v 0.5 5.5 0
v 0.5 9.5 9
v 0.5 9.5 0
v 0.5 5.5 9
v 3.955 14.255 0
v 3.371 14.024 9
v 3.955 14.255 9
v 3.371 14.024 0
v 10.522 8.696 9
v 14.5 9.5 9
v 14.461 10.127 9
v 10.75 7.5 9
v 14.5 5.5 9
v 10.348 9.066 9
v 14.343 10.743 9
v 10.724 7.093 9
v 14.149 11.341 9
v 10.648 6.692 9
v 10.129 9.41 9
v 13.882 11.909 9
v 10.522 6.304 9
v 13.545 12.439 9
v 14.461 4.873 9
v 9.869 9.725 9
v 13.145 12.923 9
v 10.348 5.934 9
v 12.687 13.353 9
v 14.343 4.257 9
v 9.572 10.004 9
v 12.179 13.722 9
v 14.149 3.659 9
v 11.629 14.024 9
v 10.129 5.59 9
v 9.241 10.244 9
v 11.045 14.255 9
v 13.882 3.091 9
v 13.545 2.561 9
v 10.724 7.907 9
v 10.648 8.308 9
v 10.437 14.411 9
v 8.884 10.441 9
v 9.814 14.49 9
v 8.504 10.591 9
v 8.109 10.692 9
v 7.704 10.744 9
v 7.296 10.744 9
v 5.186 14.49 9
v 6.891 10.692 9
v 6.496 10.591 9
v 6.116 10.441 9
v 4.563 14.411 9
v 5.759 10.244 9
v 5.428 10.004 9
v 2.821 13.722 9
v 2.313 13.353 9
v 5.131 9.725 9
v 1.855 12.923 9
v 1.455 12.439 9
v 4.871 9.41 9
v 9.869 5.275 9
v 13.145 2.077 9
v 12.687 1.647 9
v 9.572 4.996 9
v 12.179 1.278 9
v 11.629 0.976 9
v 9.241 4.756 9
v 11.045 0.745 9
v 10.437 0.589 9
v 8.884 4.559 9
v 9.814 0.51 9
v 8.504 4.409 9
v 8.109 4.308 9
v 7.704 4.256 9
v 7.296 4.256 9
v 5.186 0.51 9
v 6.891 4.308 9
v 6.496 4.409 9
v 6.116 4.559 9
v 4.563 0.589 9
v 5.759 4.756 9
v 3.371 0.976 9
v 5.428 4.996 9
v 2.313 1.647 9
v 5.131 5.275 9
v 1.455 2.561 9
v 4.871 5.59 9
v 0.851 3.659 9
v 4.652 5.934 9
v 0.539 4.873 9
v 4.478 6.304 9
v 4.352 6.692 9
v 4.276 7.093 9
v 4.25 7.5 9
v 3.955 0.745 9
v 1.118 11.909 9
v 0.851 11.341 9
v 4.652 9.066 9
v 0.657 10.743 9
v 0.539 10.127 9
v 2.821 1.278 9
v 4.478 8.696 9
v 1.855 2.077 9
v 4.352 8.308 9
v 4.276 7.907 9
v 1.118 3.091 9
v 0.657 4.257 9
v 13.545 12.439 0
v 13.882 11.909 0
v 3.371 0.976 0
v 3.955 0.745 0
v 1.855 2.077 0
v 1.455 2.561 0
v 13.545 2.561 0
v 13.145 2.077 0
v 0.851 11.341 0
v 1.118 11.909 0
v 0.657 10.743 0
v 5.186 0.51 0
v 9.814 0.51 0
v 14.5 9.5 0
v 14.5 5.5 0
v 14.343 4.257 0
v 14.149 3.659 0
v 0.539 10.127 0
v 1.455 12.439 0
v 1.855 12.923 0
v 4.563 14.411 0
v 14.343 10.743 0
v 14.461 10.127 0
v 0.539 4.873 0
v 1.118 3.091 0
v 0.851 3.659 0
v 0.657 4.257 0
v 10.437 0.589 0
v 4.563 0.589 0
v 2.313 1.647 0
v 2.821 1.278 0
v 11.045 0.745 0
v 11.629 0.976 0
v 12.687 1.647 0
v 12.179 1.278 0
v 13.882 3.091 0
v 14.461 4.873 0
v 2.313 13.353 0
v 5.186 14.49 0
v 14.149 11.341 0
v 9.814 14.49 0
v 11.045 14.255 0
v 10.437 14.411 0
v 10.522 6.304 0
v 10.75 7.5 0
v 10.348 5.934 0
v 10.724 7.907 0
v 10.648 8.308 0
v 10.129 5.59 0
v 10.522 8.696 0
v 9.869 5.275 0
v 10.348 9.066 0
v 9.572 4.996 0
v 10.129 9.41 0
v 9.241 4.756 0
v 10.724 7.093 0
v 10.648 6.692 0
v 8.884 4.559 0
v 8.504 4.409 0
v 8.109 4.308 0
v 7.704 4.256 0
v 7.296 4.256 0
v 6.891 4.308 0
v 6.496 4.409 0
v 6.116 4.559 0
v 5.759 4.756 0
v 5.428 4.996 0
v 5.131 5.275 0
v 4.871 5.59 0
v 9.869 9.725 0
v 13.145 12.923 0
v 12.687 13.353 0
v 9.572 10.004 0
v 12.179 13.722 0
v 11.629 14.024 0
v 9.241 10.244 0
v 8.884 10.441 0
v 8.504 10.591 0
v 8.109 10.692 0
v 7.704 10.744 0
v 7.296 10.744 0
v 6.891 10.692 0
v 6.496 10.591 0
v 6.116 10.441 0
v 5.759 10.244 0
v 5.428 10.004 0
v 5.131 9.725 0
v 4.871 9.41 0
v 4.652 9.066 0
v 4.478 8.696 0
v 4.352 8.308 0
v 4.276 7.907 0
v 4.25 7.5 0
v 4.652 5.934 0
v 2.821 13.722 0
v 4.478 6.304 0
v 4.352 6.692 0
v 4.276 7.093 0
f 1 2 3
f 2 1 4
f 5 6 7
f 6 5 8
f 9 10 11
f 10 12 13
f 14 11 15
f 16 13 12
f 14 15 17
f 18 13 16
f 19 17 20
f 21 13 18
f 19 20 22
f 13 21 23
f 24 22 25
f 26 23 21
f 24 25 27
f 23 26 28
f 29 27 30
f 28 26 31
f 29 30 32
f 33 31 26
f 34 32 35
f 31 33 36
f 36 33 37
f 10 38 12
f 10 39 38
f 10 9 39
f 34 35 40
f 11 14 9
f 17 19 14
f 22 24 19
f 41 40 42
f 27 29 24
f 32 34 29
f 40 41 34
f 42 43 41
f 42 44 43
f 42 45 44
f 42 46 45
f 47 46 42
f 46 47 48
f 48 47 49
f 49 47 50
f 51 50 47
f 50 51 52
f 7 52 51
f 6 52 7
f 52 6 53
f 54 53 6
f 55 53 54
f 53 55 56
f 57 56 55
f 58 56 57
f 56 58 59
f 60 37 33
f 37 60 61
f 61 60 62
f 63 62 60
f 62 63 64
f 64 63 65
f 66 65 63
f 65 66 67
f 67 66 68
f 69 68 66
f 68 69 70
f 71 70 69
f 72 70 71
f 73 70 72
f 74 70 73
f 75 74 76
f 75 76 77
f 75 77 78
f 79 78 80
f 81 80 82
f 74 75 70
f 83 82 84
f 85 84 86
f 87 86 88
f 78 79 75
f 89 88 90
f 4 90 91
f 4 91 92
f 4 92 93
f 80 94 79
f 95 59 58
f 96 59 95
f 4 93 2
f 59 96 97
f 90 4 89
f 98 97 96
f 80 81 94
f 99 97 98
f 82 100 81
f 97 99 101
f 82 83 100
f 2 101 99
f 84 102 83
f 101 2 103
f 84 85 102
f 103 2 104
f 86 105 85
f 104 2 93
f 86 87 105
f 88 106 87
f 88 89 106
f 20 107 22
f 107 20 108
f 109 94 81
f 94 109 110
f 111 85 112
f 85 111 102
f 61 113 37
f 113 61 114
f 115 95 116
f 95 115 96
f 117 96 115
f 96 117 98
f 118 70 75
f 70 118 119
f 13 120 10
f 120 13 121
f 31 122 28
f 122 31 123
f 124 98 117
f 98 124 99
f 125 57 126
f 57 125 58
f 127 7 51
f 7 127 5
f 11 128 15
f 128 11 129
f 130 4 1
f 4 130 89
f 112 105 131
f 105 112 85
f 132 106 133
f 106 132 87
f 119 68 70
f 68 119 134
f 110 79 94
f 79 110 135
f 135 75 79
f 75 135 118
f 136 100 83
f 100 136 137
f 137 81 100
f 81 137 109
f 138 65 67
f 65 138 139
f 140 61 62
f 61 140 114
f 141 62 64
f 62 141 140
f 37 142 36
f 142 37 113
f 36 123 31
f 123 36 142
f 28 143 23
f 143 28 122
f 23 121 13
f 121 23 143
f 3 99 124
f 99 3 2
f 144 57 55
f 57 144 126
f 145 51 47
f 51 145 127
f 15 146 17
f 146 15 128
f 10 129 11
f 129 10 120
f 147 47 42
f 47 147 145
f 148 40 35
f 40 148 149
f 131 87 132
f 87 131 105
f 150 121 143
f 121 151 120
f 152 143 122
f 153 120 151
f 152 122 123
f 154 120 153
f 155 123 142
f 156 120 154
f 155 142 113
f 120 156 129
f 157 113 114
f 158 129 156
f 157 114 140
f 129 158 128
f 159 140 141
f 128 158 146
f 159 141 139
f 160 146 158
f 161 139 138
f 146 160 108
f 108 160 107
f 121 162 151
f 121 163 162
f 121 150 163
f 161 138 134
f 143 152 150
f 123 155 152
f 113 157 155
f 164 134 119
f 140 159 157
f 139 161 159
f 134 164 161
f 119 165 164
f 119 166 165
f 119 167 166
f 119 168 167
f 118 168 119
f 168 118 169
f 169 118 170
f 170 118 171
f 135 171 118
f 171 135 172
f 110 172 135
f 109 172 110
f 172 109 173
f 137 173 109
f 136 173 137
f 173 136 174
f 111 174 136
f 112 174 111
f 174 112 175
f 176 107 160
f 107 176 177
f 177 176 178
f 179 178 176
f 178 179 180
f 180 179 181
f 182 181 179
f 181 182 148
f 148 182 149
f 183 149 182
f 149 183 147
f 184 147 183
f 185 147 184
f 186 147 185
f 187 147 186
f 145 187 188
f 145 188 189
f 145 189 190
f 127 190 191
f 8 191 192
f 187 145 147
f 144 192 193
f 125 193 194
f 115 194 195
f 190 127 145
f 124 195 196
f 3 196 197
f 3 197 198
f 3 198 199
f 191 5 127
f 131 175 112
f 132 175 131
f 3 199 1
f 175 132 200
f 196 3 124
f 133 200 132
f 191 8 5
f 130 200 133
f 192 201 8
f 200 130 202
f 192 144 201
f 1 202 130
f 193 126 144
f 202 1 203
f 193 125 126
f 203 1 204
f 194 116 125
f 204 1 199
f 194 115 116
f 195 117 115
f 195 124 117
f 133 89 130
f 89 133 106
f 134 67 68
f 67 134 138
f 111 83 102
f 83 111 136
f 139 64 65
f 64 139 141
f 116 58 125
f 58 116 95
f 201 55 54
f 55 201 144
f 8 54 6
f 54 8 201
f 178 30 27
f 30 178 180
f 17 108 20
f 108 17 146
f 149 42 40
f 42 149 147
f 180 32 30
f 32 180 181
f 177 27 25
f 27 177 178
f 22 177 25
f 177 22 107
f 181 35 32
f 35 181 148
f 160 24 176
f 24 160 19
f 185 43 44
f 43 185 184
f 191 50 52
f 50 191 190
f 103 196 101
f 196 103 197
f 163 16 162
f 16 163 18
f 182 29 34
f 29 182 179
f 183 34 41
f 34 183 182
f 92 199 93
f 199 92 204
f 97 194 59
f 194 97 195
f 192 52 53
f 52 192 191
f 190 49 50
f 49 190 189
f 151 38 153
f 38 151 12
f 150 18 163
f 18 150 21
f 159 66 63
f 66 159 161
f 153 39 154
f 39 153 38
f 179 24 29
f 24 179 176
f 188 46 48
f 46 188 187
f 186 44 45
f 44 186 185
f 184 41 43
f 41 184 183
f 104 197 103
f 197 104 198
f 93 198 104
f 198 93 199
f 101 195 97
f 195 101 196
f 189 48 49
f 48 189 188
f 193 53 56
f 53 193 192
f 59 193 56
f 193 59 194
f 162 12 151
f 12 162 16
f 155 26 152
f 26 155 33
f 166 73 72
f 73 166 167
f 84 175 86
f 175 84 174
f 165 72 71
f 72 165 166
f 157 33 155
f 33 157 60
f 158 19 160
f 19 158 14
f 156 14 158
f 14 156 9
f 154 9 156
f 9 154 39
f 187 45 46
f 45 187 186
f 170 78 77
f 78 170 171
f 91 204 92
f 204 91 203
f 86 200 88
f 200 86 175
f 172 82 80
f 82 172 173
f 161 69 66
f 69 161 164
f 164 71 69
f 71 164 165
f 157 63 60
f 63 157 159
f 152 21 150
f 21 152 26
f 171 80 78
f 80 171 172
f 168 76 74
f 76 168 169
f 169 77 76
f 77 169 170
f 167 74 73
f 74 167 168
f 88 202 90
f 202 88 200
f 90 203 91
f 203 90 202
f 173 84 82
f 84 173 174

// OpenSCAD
// Generated by SolidPython 1.1.3 on 2023-01-09 15:31:25
$fn = 50;


difference() {
	union() {
		translate(v = [7.5000000000, 7.5000000000, 0]) {
			rotate(a = [0, 0, 0]) {
				hull() {
					translate(v = [-2.0000000000, 2.0000000000, 0]) {
						rotate(a = [0, 0, 0]) {
							translate(v = [0, 0, 0]) {
								rotate(a = [0, 0, 0]) {
									cylinder(h = 9, r = 5);
								}
							}
						}
					}
					translate(v = [2.0000000000, 2.0000000000, 0]) {
						rotate(a = [0, 0, 0]) {
							translate(v = [0, 0, 0]) {
								rotate(a = [0, 0, 0]) {
									cylinder(h = 9, r = 5);
								}
							}
						}
					}
					translate(v = [-2.0000000000, -2.0000000000, 0]) {
						rotate(a = [0, 0, 0]) {
							translate(v = [0, 0, 0]) {
								rotate(a = [0, 0, 0]) {
									cylinder(h = 9, r = 5);
								}
							}
						}
					}
					translate(v = [2.0000000000, -2.0000000000, 0]) {
						rotate(a = [0, 0, 0]) {
							translate(v = [0, 0, 0]) {
								rotate(a = [0, 0, 0]) {
									cylinder(h = 9, r = 5);
								}
							}
						}
					}
				}
			}
		}
	}
	union() {
		translate(v = [7.5000000000, 7.5000000000, 0]) {
			rotate(a = [0, 0, 0]) {
				translate(v = [0, 0, -50]) {
					rotate(a = [0, 0, 0]) {
						cylinder(h = 100, r = 3.2500000000);
					}
				}
			}
		}
	}
}
/***********************************************
*********      SolidPython code:      **********
************************************************
 
from solid import *
import os
import subprocess

import oomB

import opsc_library_gen

mode = "laser"
#mode = "3d_print"

defined_objects = {}

radius_dict = {}
countersunk_dict = {}


def set_mode(m):
    global mode
    mode = m
    radius_dict['M6'] = 6.5/2
    radius_dict['M3'] = 3.3/2
    if mode == "laser":
        radius_dict['M6'] = 6/2
        radius_dict['M3'] = 3/2

    countersunk_dict['M3'] = {}
    countersunk_dict['M3']['little_rad'] = radius_dict['M3']
    countersunk_dict['M3']['big_rad'] = (5.5+0.6)/2
    if mode == "laser":
        countersunk_dict['M3']['big_rad'] = (4.75+0.6)/2
        countersunk_dict['M3']['little_rad'] = (4.75+0.6)/2

    countersunk_dict['M3']['height'] = 1.7


def opsc_make_object(filename, objects, save_type="none",resolution=50, layers = 1, tilediff = 200, mode="laser"):
    set_mode(mode)
    save_type = save_type.lower()
    os.makedirs(os.path.dirname(filename), exist_ok=True)
    final_object = opsc_get_object(objects)
    # Save the final object to the specified filename    
    scad_render_to_file(final_object, filename, file_header='$fn = %s;' % resolution, include_orig_code=True)
    if mode == "laser":
        filename_laser = filename.replace(".scad","-flat.scad")
        scad_render_to_file(getLaser(final_object, layers=layers, tilediff=tilediff), filename_laser, file_header='$fn = %s;' % resolution, include_orig_code=True)
        if save_type == "all":
            saveToAll(filename_laser)
        elif save_type == "dxf":
            saveToDxf(filename_laser)
    if save_type == "all":
        saveToAll(filename)
    elif save_type == "dxf":
        saveToDxf(filename)


def opsc_get_object(objects):
    # Create the solidpython objects
    positive_objects = [get_opsc_item(obj) for obj in objects if obj['type'] == 'positive']
    negative_objects = [get_opsc_item(obj) for obj in objects if obj['type'] == 'negative']
    # Union the positive objects
    positive_object = union()(*positive_objects)
    # Union the negative objects
    negative_object = union()(*negative_objects)
    # Create the final object by subtracting the negative objects from the positive objects
    return difference()(positive_object, negative_object)

def get_opsc_item(params):
    # A dictionary to map radius string values to numerical values
    #radius_dict = {'small': 5, 'medium': 10, 'large': 15}
    # An array of function names for basic shapes
    basic_shapes = ['cube', 'sphere', 'cylinder']
    
    # An array of function names for other shapes
    other_shapes = ['hole', 'slot', 'rounded_rectangle', 'countersunk']
    


    # Convert radius to r if present, and remove radius from the params dictionary
    if 'radius' in params:
        if isinstance(params['radius'], str):
            # Use the radius_dict to map the radius string value to a numerical value
            params['r'] = radius_dict[params['radius']]
        else:
            params['r'] = params['radius']
        del params['radius']
    

    # Check if the object type is a basic shape
    if params['shape'] in basic_shapes:
        # Remove shape and unexpected dictionary values
        allowed_keys = {'size', 'r', 'r1', 'r2', 'd', 'h', 'rw', 'rh', 'dw', 'dh'}
        shape_params = {k: v for k, v in params.items() if k in allowed_keys}

        # Call the corresponding function for the shape parameter, using ** notation to pass the shape_params dictionary as keyword arguments
        return get_opsc_transform(params,globals()[params['shape']](**shape_params))
    
    # If the object type is not a basic shape, check if it's a defined object or one of the other shapes
    elif params['shape'] in other_shapes:
        # Call the corresponding function for the shape parameter, passing the params dictionary as an argument
        p2 = copy.deepcopy(params)
        p2["pos"] = [0,0,0]
        return get_opsc_transform(params,globals()[params['shape']](p2))
    
    # If the object is not a basic shape or a defined object, try to import it from a .scad file
    else:
        obj = defined_objects[params['shape']]
        return get_opsc_transform(params,obj)

def get_opsc_transform(params, solid_obj):
    # Rotate the object based on the 'rot' field in the params dictionary, or the 'rotX', 'rotY', and 'rotZ' fields if 'rot' is not present
    rot = params.get('rot', [])
    if rot:
        rotX, rotY, rotZ = rot
    else:
        rotX = params.get('rotX', 0)
        rotY = params.get('rotY', 0)
        rotZ = params.get('rotZ', 0)
    solid_obj = rotate([rotX, rotY, rotZ])(solid_obj)

    # Translate the object based on the 'pos' field in the params dictionary, or the 'x', 'y', and 'z' fields if 'pos' is not present
    pos = params.get('pos', [])
    if pos:
        x, y, z = pos
    else:
        x = params.get('x', 0)
        y = params.get('y', 0)
        z = params.get('z', 0)
    solid_obj = translate([x, y, z])(solid_obj)
    return solid_obj


import random

def opsc_easy_array(type, shape, repeats, pos_start, shift_arr, **kwargs):
    for i in range(0,3):
        repeats.append(1)
        pos_start.append(0)
        shift_arr.append(0)
    return_objects = []

    for x in range(0,repeats[0]):
        for y in range(0,repeats[1]):
            for z in range(0,repeats[2]):
                return_objects.append(opsc_easy(type, shape, pos=[pos_start[0]+x*shift_arr[0],pos_start[1]+y*shift_arr[1],pos_start[2]+z*shift_arr[2]], **kwargs))
    return return_objects                



def opsc_easy(type, shape, **kwargs):
    obj = {
        'type': type,
        'shape': shape
    }
    for param in ['size', 'r', 'r1', 'r2', 'd', 'h', 'rw', 'rh', 'dw', 'dh', 'pos', 'x', 'y', 'z', 'rot', 'rotX', 'rotY', 'rotZ', "w"]:
        if param in kwargs:
            obj[param] = kwargs[param]
    return obj

def hole(params):
    p2 = copy.deepcopy(params)  
    # Check if the radius is a string and replace it with the corresponding value from the dictionary
    if isinstance(p2['r'], str):
        p2['r'] = radius_dict[p2['r']]
    
    # Set the height to 100 if not specified
    if 'h' not in p2:
        p2['h'] = 100
        p2["pos"] = [0,0,-50]
    p2["center"] = True
    # Create the cylinder object
    p2["shape"] = "cylinder"
    p2["type"] = "positive"

    return get_opsc_item(p2)

import copy

def countersunk(params):
    p2 = copy.deepcopy(params)
    counter_rad = p2['r']
    p2['r'] = radius_dict[p2['r']]
    hp = copy.deepcopy(p2)
    hp["type"] = "positive"
    hp["shape"] = "hole"
    del hp["rot"]
    hol = get_opsc_item(hp)
    
    cp = copy.deepcopy(p2)
    cp["h"] = countersunk_dict[counter_rad]["height"]
    cp["r2"] = countersunk_dict[counter_rad]["little_rad"]
    cp["r1"] = countersunk_dict[counter_rad]["big_rad"]
    del cp["r"]
    del cp["rot"]
    cp["type"] = "positive"
    cp["shape"] = "cylinder"
    cp["pos"] = [0,0,0]

    top = get_opsc_item(cp)
    return union()(hol,top)



def slot(params):  
    p2 = copy.deepcopy(params) 
    if isinstance(p2['r'], str):
        p2['r'] = radius_dict[p2['r']]
    p2["type"] = "positive"
    p2["shape"] = "hole"
    del p2["rot"]
    p2["pos"] = [0,0,0]
    left = copy.deepcopy(p2)
    right = copy.deepcopy(p2)
    left["pos"][0] = p2["w"] / 2 - p2["r"] 
    
    right["pos"][0] = -p2["w"] / 2 + p2["r"] 
    pass
    leftObj = get_opsc_item(left)
    rightObj = get_opsc_item(right)
    return hull()(leftObj, rightObj)

def rounded_rectangle(params):   
    p2 = copy.deepcopy(params) 
    p2["h"] = p2["size"][2]
    p2["pos"] = p2.get("pos", [0, 0, 0]) 
    p2["type"] = "positive"
    p2["shape"] = "hole"
    p2["pos"] = [0,0,0]
    
    if 'rot' in p2:
        del p2["rot"]   
    if 'r' not in p2:
        p2["r"] = 5 
    tl = copy.deepcopy(p2)
    tr = copy.deepcopy(p2)
    bl = copy.deepcopy(p2)
    br = copy.deepcopy(p2)
    tl["pos"][0] = -(p2["size"][0] - p2["r"]*2)/2
    tl["pos"][1] = (p2["size"][1] - p2["r"]*2)/2
    tr["pos"][0] = (p2["size"][0] - p2["r"]*2)/2
    tr["pos"][1] = (p2["size"][1] - p2["r"]*2)/2
    bl["pos"][0] = -(p2["size"][0] - p2["r"]*2)/2
    bl["pos"][1] = -(p2["size"][1] - p2["r"]*2)/2
    br["pos"][0] = (p2["size"][0] - p2["r"]*2)/2
    br["pos"][1] = -(p2["size"][1] - p2["r"]*2)/2
    del tl["size"]
    del tr["size"]
    del bl["size"]
    del br["size"]
    tlo = get_opsc_item(tl)
    tro = get_opsc_item(tr)
    blo = get_opsc_item(bl)
    bro = get_opsc_item(br)    
    return hull()(tlo, tro, blo, bro)



def import_scad_object(filename):
    # Import the .scad file and convert it to a solidpython object
    #filename = "parts"
    obj = import_scad(filename)
    return obj.main()
    


import os
import solid as solidpython

# A dictionary to store the defined objects


def load_scad_objects():
    opsc_library_gen.gen_library(defined_objects)

import random

def test(num_objects):
    objects = []
    for i in range(num_objects):
        # Choose a random shape
        #shape = random.choice(['cube', 'sphere', 'cylinder', 'hole', 'slot', "rounded_rectangle"])
        shape = random.choice(["rounded_rectangle"])

        # Choose a random type
        type = random.choice(['positive', 'negative'])
        
        # Create an empty object dictionary
        obj = {'shape': shape, 'type': type}
        
        # Set shape-specific parameters
        if obj['shape'] in ['cube']:
            obj['size'] =  [random.uniform(5, 15), random.uniform(5, 15), random.uniform(5, 15)]
        if obj['shape'] in ['rounded_rectangle']:
            obj['size'] =  [random.uniform(5, 15), random.uniform(5, 15), random.uniform(5, 15)]
            obj['r'] = random.uniform(0.5, 5)
        elif obj['shape'] == 'sphere':
            obj['r'] = random.uniform(5, 15)
        elif obj['shape'] in ['cylinder', 'hole']:
            obj['r'] = random.uniform(0.5, 5)
            obj['h'] = random.uniform(5, 15)
        elif obj['shape'] == 'slot':
            obj['r'] = random.uniform(0.5, 5)
            obj['h'] = random.uniform(5, 15)
            obj['w'] = random.uniform(5, 15)
        
        # Set a random position and rotation
        obj['pos'] = [random.uniform(-20, 20), random.uniform(-20, 20), random.uniform(-20, 20)]
        obj['rot'] = [random.uniform(-180, 180), random.uniform(-180, 180), random.uniform(-180, 180)]
        
        # Add the object to the list
        objects.append(obj)
    return objects

####### old file saving
def saveToAll(fileIn):
    saveToDxf(fileIn)
    saveToPng(fileIn)
    saveToStl(fileIn)
    saveToSvg(fileIn)

def saveToDxf(fileIn, fileOut="", copy_to_laser=True):
    if fileOut == "":
        fileOut = fileIn.replace(".scad",".dxf")
    saveToFile(fileIn, fileOut)


    
def saveToPng(fileIn, fileOut="",extra="--render"):
    if fileOut == "":
        fileOut = fileIn.replace(".scad",".png")
    saveToFile(fileIn, fileOut)

def saveToStl(fileIn, fileOut=""):
    if fileOut == "":
        fileOut = fileIn.replace(".scad",".stl")
    saveToFile(fileIn, fileOut)
    
def saveToSvg(fileIn, fileOut=""):
    if fileOut == "":
        fileOut = fileIn.replace(".scad",".svg")
    saveToFile(fileIn, fileOut)

def saveToFile(fileIn, fileOut,extra=""):
    #extra = extra + " --colorscheme Tomorrow"

    launchStr = 'openscad -o "' + fileOut + '"' + extra + ' "' + fileIn + '"'
    if ".png" in fileOut:
        launchStr = launchStr + " --render"
    print("            saveToFile launch string: " + launchStr)
    subprocess.run(launchStr)
    x=0

def getLaser(final_object,start=1.5,layers=1,thickness=3,tilediff=200):
        rv= []

        for x in range(layers):
            rv.append(translate([0,x*tilediff,0])(
                    projection()(
                        intersection()(translate([-500,-500,start+x*thickness])(cube(size=[1000,1000,0.1])),
                            final_object
                        )
                    )
            )
            )
            
        return union()(rv)

set_mode("laser")
load_scad_objects() 
 
************************************************/
